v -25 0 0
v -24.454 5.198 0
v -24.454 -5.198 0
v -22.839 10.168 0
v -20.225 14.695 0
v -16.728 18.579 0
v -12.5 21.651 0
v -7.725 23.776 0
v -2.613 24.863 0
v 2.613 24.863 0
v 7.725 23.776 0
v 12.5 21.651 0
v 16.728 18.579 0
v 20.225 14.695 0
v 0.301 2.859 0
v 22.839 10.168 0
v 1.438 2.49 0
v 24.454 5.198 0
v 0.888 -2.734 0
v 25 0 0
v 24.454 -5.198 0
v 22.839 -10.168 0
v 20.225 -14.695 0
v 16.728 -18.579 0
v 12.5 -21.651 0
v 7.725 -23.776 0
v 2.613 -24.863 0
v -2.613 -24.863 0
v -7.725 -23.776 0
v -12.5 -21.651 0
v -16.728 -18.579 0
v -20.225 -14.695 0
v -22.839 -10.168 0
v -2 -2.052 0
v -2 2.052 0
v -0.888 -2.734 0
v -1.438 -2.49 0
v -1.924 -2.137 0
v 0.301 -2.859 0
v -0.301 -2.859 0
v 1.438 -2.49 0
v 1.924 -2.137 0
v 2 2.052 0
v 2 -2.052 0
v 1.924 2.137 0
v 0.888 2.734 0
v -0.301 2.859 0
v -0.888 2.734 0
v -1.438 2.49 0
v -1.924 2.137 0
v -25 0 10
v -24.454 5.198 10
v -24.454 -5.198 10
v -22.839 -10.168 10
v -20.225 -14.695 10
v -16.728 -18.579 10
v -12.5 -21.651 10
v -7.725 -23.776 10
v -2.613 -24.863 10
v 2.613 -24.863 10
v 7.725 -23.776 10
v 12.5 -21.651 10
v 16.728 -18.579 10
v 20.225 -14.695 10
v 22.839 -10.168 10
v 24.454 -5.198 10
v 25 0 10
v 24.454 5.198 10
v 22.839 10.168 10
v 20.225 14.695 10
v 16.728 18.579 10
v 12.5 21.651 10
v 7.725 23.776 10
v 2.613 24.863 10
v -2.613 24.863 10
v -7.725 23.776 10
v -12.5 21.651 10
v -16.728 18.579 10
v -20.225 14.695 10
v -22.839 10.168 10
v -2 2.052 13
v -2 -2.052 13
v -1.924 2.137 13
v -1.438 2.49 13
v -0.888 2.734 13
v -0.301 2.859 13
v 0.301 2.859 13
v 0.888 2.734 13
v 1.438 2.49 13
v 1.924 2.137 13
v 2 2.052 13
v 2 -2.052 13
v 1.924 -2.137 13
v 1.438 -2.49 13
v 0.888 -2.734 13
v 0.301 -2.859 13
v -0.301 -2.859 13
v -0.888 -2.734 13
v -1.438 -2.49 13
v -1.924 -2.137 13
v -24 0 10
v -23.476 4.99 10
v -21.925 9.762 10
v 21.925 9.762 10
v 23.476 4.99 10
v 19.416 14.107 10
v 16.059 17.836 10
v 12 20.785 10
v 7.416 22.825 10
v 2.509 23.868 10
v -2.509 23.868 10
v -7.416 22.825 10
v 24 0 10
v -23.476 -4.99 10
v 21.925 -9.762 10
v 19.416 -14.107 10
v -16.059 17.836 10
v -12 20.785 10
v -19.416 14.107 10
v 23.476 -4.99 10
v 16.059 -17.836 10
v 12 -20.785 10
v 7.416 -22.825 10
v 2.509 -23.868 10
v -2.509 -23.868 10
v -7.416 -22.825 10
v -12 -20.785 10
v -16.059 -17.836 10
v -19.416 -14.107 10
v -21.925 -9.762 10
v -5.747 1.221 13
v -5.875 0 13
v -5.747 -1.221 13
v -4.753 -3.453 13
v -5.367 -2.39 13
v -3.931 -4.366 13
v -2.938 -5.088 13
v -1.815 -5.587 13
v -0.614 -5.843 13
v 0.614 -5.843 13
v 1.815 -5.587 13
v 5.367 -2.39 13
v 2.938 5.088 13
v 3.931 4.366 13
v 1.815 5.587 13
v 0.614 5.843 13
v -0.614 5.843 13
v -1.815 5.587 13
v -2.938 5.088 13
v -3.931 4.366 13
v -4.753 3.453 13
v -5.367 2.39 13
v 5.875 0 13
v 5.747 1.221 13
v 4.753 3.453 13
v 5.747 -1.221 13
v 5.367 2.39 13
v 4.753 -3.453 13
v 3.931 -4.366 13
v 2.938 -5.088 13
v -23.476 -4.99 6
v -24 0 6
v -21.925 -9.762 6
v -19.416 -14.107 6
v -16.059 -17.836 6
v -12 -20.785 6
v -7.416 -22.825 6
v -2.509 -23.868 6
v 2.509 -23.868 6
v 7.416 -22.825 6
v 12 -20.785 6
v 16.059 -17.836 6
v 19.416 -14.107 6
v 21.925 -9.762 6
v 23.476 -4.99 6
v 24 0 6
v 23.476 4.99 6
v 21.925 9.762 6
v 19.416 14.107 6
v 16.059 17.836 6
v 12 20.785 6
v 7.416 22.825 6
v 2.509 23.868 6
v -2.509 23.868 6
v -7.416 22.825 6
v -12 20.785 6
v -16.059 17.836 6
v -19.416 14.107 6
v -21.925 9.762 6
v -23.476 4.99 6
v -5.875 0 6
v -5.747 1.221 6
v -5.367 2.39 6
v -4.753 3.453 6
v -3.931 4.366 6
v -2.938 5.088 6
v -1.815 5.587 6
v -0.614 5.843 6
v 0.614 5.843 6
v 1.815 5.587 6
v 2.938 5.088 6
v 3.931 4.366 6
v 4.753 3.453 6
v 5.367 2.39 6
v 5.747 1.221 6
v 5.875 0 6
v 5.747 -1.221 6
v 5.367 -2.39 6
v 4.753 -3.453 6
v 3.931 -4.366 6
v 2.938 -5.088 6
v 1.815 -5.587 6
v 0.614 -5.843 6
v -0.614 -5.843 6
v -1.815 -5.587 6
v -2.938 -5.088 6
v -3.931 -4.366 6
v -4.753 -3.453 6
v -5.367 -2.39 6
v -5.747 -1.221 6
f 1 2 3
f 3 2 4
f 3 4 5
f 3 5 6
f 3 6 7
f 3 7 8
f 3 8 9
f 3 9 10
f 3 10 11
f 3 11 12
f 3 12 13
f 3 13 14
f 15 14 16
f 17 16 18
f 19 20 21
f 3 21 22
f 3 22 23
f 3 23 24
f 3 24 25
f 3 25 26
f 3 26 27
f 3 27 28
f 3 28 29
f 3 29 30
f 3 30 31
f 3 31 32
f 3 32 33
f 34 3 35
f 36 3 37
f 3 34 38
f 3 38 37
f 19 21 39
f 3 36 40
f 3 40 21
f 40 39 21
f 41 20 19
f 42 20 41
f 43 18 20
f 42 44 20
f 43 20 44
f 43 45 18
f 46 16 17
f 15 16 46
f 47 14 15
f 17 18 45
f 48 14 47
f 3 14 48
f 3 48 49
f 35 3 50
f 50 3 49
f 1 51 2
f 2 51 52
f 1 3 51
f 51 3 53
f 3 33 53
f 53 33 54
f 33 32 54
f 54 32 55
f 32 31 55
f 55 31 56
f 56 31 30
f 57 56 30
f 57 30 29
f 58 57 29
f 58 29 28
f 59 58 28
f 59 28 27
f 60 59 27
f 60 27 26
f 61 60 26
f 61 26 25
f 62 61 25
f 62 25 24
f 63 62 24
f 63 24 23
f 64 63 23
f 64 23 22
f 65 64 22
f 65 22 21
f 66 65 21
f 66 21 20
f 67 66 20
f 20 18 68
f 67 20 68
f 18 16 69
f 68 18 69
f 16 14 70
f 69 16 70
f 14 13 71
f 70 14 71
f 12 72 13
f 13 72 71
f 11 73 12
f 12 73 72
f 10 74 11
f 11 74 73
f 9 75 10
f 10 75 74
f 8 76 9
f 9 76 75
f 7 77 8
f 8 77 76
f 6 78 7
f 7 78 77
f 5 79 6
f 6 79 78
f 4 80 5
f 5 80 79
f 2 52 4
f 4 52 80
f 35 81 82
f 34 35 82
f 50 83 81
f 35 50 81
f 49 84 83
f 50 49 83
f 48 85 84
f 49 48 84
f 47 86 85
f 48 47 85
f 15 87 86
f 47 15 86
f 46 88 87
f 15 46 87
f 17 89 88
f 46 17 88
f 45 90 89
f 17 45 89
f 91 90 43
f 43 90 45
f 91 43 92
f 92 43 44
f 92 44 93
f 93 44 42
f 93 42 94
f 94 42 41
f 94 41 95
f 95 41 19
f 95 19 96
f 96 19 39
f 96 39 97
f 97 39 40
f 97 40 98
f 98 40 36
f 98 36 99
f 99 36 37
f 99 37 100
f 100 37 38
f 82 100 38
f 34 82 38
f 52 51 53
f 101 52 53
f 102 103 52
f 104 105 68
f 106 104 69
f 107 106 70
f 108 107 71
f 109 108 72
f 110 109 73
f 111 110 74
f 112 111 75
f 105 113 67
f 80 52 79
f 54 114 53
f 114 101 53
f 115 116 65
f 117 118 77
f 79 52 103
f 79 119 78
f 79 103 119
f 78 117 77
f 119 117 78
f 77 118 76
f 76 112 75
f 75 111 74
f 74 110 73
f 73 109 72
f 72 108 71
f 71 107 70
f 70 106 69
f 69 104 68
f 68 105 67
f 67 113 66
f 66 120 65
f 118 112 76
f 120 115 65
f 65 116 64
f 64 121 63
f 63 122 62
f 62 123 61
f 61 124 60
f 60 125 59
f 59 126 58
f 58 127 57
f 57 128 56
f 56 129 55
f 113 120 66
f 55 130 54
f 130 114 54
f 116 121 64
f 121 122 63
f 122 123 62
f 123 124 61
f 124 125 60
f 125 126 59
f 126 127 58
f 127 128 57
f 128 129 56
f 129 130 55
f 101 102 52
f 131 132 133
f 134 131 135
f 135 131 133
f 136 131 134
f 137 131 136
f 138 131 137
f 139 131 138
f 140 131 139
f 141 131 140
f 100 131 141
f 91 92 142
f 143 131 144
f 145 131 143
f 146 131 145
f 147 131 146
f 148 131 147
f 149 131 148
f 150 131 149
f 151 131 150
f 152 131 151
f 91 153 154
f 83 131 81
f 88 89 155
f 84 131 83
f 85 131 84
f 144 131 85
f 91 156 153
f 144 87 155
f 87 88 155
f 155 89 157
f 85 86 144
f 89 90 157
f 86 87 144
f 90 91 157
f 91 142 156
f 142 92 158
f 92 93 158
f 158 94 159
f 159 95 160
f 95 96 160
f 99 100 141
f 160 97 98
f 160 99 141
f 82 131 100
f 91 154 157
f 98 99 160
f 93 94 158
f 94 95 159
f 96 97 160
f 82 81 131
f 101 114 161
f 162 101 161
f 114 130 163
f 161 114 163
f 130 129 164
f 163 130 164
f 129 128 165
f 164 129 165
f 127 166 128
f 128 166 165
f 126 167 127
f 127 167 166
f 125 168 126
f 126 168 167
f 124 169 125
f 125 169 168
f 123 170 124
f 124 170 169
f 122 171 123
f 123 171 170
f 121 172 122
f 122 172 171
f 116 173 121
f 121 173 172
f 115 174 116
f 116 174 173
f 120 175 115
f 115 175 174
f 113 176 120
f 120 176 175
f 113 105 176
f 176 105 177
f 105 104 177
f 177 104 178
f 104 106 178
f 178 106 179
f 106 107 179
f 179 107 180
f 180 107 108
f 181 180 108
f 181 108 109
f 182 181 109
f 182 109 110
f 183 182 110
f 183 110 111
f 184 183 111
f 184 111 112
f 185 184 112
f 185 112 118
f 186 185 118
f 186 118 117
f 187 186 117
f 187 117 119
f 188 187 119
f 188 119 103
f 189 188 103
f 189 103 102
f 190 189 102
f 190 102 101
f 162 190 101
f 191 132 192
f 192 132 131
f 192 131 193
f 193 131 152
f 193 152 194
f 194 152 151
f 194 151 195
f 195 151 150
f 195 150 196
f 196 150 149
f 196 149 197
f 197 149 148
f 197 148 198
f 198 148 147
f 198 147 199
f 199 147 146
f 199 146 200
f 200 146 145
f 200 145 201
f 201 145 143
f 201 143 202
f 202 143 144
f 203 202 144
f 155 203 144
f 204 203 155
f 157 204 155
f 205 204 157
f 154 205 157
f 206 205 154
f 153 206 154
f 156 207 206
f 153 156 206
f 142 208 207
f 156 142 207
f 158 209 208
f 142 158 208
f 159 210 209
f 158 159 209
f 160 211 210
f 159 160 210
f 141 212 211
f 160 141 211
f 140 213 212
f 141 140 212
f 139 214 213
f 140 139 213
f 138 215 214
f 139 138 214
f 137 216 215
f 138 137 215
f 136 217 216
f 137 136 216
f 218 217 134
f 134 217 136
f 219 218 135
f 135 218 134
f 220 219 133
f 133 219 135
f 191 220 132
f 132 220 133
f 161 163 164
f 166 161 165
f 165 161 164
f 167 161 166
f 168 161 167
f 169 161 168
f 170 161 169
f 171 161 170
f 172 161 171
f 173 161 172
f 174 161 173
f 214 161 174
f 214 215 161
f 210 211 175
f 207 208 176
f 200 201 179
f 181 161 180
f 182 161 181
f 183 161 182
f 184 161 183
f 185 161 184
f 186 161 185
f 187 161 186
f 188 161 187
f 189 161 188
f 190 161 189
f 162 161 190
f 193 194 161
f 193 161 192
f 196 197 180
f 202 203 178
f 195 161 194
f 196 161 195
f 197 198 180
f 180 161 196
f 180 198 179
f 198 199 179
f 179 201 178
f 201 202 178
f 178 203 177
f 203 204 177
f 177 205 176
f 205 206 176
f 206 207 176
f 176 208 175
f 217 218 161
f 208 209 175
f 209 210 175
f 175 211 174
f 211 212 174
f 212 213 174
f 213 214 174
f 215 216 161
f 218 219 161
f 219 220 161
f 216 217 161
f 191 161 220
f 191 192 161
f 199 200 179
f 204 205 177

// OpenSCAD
/*   	Parametric airless tire
		by Travis Howse <tjhowse@gmail.com>
		2012.   License, GPL v2 or later
**************************************************/

dia_in = 5.75;
dia_out = 50;
spoke_count = 4;
spoke_thickness = 0.5;
tread_thickness = 1;
hub_thickness = 3;
height = 10;
$fn = 30;
spoke_dia = (dia_in/2) + hub_thickness + (dia_out/2) - tread_thickness+spoke_thickness;
grip_density = 0; // Set to 0 for no grip.
grip_height = 0.5;
grip_depth = 1;
pi = 3.14159;
zff = 0.001;

hub_extra_height = 3;
flat_hub_width = 4; // Use a value > dia_in to get a round hub

//Set to 1 for a double spiral.
// Note: single-wall spokes probably won't work with double spirals, as the
// first layer of the upper spiral would bridge in a straight line, rather
// than a curve. Successive layers probably wouldn't recover.
double_spiral = 1;

module wheel()
{
     difference(){
	cylinder(r=dia_out/2,h=height);
      translate([0,0,6]){cylinder(r=dia_out/2-tread_thickness,h=height-4);}
cylinder(r=(dia_in/2)+hub_thickness,h=height+hub_extra_height);
}


	difference()
	{
		cylinder(r=(dia_in/2)+hub_thickness,h=height+hub_extra_height);
		intersection()
		{
			cylinder(r=dia_in/2,h=height+hub_extra_height);	
			translate([0,0,(height+hub_extra_height)/2])
				cube([flat_hub_width,2*(flat_hub_width),height+hub_extra_height], center=true);
		}
	}
	


}



wheel();
